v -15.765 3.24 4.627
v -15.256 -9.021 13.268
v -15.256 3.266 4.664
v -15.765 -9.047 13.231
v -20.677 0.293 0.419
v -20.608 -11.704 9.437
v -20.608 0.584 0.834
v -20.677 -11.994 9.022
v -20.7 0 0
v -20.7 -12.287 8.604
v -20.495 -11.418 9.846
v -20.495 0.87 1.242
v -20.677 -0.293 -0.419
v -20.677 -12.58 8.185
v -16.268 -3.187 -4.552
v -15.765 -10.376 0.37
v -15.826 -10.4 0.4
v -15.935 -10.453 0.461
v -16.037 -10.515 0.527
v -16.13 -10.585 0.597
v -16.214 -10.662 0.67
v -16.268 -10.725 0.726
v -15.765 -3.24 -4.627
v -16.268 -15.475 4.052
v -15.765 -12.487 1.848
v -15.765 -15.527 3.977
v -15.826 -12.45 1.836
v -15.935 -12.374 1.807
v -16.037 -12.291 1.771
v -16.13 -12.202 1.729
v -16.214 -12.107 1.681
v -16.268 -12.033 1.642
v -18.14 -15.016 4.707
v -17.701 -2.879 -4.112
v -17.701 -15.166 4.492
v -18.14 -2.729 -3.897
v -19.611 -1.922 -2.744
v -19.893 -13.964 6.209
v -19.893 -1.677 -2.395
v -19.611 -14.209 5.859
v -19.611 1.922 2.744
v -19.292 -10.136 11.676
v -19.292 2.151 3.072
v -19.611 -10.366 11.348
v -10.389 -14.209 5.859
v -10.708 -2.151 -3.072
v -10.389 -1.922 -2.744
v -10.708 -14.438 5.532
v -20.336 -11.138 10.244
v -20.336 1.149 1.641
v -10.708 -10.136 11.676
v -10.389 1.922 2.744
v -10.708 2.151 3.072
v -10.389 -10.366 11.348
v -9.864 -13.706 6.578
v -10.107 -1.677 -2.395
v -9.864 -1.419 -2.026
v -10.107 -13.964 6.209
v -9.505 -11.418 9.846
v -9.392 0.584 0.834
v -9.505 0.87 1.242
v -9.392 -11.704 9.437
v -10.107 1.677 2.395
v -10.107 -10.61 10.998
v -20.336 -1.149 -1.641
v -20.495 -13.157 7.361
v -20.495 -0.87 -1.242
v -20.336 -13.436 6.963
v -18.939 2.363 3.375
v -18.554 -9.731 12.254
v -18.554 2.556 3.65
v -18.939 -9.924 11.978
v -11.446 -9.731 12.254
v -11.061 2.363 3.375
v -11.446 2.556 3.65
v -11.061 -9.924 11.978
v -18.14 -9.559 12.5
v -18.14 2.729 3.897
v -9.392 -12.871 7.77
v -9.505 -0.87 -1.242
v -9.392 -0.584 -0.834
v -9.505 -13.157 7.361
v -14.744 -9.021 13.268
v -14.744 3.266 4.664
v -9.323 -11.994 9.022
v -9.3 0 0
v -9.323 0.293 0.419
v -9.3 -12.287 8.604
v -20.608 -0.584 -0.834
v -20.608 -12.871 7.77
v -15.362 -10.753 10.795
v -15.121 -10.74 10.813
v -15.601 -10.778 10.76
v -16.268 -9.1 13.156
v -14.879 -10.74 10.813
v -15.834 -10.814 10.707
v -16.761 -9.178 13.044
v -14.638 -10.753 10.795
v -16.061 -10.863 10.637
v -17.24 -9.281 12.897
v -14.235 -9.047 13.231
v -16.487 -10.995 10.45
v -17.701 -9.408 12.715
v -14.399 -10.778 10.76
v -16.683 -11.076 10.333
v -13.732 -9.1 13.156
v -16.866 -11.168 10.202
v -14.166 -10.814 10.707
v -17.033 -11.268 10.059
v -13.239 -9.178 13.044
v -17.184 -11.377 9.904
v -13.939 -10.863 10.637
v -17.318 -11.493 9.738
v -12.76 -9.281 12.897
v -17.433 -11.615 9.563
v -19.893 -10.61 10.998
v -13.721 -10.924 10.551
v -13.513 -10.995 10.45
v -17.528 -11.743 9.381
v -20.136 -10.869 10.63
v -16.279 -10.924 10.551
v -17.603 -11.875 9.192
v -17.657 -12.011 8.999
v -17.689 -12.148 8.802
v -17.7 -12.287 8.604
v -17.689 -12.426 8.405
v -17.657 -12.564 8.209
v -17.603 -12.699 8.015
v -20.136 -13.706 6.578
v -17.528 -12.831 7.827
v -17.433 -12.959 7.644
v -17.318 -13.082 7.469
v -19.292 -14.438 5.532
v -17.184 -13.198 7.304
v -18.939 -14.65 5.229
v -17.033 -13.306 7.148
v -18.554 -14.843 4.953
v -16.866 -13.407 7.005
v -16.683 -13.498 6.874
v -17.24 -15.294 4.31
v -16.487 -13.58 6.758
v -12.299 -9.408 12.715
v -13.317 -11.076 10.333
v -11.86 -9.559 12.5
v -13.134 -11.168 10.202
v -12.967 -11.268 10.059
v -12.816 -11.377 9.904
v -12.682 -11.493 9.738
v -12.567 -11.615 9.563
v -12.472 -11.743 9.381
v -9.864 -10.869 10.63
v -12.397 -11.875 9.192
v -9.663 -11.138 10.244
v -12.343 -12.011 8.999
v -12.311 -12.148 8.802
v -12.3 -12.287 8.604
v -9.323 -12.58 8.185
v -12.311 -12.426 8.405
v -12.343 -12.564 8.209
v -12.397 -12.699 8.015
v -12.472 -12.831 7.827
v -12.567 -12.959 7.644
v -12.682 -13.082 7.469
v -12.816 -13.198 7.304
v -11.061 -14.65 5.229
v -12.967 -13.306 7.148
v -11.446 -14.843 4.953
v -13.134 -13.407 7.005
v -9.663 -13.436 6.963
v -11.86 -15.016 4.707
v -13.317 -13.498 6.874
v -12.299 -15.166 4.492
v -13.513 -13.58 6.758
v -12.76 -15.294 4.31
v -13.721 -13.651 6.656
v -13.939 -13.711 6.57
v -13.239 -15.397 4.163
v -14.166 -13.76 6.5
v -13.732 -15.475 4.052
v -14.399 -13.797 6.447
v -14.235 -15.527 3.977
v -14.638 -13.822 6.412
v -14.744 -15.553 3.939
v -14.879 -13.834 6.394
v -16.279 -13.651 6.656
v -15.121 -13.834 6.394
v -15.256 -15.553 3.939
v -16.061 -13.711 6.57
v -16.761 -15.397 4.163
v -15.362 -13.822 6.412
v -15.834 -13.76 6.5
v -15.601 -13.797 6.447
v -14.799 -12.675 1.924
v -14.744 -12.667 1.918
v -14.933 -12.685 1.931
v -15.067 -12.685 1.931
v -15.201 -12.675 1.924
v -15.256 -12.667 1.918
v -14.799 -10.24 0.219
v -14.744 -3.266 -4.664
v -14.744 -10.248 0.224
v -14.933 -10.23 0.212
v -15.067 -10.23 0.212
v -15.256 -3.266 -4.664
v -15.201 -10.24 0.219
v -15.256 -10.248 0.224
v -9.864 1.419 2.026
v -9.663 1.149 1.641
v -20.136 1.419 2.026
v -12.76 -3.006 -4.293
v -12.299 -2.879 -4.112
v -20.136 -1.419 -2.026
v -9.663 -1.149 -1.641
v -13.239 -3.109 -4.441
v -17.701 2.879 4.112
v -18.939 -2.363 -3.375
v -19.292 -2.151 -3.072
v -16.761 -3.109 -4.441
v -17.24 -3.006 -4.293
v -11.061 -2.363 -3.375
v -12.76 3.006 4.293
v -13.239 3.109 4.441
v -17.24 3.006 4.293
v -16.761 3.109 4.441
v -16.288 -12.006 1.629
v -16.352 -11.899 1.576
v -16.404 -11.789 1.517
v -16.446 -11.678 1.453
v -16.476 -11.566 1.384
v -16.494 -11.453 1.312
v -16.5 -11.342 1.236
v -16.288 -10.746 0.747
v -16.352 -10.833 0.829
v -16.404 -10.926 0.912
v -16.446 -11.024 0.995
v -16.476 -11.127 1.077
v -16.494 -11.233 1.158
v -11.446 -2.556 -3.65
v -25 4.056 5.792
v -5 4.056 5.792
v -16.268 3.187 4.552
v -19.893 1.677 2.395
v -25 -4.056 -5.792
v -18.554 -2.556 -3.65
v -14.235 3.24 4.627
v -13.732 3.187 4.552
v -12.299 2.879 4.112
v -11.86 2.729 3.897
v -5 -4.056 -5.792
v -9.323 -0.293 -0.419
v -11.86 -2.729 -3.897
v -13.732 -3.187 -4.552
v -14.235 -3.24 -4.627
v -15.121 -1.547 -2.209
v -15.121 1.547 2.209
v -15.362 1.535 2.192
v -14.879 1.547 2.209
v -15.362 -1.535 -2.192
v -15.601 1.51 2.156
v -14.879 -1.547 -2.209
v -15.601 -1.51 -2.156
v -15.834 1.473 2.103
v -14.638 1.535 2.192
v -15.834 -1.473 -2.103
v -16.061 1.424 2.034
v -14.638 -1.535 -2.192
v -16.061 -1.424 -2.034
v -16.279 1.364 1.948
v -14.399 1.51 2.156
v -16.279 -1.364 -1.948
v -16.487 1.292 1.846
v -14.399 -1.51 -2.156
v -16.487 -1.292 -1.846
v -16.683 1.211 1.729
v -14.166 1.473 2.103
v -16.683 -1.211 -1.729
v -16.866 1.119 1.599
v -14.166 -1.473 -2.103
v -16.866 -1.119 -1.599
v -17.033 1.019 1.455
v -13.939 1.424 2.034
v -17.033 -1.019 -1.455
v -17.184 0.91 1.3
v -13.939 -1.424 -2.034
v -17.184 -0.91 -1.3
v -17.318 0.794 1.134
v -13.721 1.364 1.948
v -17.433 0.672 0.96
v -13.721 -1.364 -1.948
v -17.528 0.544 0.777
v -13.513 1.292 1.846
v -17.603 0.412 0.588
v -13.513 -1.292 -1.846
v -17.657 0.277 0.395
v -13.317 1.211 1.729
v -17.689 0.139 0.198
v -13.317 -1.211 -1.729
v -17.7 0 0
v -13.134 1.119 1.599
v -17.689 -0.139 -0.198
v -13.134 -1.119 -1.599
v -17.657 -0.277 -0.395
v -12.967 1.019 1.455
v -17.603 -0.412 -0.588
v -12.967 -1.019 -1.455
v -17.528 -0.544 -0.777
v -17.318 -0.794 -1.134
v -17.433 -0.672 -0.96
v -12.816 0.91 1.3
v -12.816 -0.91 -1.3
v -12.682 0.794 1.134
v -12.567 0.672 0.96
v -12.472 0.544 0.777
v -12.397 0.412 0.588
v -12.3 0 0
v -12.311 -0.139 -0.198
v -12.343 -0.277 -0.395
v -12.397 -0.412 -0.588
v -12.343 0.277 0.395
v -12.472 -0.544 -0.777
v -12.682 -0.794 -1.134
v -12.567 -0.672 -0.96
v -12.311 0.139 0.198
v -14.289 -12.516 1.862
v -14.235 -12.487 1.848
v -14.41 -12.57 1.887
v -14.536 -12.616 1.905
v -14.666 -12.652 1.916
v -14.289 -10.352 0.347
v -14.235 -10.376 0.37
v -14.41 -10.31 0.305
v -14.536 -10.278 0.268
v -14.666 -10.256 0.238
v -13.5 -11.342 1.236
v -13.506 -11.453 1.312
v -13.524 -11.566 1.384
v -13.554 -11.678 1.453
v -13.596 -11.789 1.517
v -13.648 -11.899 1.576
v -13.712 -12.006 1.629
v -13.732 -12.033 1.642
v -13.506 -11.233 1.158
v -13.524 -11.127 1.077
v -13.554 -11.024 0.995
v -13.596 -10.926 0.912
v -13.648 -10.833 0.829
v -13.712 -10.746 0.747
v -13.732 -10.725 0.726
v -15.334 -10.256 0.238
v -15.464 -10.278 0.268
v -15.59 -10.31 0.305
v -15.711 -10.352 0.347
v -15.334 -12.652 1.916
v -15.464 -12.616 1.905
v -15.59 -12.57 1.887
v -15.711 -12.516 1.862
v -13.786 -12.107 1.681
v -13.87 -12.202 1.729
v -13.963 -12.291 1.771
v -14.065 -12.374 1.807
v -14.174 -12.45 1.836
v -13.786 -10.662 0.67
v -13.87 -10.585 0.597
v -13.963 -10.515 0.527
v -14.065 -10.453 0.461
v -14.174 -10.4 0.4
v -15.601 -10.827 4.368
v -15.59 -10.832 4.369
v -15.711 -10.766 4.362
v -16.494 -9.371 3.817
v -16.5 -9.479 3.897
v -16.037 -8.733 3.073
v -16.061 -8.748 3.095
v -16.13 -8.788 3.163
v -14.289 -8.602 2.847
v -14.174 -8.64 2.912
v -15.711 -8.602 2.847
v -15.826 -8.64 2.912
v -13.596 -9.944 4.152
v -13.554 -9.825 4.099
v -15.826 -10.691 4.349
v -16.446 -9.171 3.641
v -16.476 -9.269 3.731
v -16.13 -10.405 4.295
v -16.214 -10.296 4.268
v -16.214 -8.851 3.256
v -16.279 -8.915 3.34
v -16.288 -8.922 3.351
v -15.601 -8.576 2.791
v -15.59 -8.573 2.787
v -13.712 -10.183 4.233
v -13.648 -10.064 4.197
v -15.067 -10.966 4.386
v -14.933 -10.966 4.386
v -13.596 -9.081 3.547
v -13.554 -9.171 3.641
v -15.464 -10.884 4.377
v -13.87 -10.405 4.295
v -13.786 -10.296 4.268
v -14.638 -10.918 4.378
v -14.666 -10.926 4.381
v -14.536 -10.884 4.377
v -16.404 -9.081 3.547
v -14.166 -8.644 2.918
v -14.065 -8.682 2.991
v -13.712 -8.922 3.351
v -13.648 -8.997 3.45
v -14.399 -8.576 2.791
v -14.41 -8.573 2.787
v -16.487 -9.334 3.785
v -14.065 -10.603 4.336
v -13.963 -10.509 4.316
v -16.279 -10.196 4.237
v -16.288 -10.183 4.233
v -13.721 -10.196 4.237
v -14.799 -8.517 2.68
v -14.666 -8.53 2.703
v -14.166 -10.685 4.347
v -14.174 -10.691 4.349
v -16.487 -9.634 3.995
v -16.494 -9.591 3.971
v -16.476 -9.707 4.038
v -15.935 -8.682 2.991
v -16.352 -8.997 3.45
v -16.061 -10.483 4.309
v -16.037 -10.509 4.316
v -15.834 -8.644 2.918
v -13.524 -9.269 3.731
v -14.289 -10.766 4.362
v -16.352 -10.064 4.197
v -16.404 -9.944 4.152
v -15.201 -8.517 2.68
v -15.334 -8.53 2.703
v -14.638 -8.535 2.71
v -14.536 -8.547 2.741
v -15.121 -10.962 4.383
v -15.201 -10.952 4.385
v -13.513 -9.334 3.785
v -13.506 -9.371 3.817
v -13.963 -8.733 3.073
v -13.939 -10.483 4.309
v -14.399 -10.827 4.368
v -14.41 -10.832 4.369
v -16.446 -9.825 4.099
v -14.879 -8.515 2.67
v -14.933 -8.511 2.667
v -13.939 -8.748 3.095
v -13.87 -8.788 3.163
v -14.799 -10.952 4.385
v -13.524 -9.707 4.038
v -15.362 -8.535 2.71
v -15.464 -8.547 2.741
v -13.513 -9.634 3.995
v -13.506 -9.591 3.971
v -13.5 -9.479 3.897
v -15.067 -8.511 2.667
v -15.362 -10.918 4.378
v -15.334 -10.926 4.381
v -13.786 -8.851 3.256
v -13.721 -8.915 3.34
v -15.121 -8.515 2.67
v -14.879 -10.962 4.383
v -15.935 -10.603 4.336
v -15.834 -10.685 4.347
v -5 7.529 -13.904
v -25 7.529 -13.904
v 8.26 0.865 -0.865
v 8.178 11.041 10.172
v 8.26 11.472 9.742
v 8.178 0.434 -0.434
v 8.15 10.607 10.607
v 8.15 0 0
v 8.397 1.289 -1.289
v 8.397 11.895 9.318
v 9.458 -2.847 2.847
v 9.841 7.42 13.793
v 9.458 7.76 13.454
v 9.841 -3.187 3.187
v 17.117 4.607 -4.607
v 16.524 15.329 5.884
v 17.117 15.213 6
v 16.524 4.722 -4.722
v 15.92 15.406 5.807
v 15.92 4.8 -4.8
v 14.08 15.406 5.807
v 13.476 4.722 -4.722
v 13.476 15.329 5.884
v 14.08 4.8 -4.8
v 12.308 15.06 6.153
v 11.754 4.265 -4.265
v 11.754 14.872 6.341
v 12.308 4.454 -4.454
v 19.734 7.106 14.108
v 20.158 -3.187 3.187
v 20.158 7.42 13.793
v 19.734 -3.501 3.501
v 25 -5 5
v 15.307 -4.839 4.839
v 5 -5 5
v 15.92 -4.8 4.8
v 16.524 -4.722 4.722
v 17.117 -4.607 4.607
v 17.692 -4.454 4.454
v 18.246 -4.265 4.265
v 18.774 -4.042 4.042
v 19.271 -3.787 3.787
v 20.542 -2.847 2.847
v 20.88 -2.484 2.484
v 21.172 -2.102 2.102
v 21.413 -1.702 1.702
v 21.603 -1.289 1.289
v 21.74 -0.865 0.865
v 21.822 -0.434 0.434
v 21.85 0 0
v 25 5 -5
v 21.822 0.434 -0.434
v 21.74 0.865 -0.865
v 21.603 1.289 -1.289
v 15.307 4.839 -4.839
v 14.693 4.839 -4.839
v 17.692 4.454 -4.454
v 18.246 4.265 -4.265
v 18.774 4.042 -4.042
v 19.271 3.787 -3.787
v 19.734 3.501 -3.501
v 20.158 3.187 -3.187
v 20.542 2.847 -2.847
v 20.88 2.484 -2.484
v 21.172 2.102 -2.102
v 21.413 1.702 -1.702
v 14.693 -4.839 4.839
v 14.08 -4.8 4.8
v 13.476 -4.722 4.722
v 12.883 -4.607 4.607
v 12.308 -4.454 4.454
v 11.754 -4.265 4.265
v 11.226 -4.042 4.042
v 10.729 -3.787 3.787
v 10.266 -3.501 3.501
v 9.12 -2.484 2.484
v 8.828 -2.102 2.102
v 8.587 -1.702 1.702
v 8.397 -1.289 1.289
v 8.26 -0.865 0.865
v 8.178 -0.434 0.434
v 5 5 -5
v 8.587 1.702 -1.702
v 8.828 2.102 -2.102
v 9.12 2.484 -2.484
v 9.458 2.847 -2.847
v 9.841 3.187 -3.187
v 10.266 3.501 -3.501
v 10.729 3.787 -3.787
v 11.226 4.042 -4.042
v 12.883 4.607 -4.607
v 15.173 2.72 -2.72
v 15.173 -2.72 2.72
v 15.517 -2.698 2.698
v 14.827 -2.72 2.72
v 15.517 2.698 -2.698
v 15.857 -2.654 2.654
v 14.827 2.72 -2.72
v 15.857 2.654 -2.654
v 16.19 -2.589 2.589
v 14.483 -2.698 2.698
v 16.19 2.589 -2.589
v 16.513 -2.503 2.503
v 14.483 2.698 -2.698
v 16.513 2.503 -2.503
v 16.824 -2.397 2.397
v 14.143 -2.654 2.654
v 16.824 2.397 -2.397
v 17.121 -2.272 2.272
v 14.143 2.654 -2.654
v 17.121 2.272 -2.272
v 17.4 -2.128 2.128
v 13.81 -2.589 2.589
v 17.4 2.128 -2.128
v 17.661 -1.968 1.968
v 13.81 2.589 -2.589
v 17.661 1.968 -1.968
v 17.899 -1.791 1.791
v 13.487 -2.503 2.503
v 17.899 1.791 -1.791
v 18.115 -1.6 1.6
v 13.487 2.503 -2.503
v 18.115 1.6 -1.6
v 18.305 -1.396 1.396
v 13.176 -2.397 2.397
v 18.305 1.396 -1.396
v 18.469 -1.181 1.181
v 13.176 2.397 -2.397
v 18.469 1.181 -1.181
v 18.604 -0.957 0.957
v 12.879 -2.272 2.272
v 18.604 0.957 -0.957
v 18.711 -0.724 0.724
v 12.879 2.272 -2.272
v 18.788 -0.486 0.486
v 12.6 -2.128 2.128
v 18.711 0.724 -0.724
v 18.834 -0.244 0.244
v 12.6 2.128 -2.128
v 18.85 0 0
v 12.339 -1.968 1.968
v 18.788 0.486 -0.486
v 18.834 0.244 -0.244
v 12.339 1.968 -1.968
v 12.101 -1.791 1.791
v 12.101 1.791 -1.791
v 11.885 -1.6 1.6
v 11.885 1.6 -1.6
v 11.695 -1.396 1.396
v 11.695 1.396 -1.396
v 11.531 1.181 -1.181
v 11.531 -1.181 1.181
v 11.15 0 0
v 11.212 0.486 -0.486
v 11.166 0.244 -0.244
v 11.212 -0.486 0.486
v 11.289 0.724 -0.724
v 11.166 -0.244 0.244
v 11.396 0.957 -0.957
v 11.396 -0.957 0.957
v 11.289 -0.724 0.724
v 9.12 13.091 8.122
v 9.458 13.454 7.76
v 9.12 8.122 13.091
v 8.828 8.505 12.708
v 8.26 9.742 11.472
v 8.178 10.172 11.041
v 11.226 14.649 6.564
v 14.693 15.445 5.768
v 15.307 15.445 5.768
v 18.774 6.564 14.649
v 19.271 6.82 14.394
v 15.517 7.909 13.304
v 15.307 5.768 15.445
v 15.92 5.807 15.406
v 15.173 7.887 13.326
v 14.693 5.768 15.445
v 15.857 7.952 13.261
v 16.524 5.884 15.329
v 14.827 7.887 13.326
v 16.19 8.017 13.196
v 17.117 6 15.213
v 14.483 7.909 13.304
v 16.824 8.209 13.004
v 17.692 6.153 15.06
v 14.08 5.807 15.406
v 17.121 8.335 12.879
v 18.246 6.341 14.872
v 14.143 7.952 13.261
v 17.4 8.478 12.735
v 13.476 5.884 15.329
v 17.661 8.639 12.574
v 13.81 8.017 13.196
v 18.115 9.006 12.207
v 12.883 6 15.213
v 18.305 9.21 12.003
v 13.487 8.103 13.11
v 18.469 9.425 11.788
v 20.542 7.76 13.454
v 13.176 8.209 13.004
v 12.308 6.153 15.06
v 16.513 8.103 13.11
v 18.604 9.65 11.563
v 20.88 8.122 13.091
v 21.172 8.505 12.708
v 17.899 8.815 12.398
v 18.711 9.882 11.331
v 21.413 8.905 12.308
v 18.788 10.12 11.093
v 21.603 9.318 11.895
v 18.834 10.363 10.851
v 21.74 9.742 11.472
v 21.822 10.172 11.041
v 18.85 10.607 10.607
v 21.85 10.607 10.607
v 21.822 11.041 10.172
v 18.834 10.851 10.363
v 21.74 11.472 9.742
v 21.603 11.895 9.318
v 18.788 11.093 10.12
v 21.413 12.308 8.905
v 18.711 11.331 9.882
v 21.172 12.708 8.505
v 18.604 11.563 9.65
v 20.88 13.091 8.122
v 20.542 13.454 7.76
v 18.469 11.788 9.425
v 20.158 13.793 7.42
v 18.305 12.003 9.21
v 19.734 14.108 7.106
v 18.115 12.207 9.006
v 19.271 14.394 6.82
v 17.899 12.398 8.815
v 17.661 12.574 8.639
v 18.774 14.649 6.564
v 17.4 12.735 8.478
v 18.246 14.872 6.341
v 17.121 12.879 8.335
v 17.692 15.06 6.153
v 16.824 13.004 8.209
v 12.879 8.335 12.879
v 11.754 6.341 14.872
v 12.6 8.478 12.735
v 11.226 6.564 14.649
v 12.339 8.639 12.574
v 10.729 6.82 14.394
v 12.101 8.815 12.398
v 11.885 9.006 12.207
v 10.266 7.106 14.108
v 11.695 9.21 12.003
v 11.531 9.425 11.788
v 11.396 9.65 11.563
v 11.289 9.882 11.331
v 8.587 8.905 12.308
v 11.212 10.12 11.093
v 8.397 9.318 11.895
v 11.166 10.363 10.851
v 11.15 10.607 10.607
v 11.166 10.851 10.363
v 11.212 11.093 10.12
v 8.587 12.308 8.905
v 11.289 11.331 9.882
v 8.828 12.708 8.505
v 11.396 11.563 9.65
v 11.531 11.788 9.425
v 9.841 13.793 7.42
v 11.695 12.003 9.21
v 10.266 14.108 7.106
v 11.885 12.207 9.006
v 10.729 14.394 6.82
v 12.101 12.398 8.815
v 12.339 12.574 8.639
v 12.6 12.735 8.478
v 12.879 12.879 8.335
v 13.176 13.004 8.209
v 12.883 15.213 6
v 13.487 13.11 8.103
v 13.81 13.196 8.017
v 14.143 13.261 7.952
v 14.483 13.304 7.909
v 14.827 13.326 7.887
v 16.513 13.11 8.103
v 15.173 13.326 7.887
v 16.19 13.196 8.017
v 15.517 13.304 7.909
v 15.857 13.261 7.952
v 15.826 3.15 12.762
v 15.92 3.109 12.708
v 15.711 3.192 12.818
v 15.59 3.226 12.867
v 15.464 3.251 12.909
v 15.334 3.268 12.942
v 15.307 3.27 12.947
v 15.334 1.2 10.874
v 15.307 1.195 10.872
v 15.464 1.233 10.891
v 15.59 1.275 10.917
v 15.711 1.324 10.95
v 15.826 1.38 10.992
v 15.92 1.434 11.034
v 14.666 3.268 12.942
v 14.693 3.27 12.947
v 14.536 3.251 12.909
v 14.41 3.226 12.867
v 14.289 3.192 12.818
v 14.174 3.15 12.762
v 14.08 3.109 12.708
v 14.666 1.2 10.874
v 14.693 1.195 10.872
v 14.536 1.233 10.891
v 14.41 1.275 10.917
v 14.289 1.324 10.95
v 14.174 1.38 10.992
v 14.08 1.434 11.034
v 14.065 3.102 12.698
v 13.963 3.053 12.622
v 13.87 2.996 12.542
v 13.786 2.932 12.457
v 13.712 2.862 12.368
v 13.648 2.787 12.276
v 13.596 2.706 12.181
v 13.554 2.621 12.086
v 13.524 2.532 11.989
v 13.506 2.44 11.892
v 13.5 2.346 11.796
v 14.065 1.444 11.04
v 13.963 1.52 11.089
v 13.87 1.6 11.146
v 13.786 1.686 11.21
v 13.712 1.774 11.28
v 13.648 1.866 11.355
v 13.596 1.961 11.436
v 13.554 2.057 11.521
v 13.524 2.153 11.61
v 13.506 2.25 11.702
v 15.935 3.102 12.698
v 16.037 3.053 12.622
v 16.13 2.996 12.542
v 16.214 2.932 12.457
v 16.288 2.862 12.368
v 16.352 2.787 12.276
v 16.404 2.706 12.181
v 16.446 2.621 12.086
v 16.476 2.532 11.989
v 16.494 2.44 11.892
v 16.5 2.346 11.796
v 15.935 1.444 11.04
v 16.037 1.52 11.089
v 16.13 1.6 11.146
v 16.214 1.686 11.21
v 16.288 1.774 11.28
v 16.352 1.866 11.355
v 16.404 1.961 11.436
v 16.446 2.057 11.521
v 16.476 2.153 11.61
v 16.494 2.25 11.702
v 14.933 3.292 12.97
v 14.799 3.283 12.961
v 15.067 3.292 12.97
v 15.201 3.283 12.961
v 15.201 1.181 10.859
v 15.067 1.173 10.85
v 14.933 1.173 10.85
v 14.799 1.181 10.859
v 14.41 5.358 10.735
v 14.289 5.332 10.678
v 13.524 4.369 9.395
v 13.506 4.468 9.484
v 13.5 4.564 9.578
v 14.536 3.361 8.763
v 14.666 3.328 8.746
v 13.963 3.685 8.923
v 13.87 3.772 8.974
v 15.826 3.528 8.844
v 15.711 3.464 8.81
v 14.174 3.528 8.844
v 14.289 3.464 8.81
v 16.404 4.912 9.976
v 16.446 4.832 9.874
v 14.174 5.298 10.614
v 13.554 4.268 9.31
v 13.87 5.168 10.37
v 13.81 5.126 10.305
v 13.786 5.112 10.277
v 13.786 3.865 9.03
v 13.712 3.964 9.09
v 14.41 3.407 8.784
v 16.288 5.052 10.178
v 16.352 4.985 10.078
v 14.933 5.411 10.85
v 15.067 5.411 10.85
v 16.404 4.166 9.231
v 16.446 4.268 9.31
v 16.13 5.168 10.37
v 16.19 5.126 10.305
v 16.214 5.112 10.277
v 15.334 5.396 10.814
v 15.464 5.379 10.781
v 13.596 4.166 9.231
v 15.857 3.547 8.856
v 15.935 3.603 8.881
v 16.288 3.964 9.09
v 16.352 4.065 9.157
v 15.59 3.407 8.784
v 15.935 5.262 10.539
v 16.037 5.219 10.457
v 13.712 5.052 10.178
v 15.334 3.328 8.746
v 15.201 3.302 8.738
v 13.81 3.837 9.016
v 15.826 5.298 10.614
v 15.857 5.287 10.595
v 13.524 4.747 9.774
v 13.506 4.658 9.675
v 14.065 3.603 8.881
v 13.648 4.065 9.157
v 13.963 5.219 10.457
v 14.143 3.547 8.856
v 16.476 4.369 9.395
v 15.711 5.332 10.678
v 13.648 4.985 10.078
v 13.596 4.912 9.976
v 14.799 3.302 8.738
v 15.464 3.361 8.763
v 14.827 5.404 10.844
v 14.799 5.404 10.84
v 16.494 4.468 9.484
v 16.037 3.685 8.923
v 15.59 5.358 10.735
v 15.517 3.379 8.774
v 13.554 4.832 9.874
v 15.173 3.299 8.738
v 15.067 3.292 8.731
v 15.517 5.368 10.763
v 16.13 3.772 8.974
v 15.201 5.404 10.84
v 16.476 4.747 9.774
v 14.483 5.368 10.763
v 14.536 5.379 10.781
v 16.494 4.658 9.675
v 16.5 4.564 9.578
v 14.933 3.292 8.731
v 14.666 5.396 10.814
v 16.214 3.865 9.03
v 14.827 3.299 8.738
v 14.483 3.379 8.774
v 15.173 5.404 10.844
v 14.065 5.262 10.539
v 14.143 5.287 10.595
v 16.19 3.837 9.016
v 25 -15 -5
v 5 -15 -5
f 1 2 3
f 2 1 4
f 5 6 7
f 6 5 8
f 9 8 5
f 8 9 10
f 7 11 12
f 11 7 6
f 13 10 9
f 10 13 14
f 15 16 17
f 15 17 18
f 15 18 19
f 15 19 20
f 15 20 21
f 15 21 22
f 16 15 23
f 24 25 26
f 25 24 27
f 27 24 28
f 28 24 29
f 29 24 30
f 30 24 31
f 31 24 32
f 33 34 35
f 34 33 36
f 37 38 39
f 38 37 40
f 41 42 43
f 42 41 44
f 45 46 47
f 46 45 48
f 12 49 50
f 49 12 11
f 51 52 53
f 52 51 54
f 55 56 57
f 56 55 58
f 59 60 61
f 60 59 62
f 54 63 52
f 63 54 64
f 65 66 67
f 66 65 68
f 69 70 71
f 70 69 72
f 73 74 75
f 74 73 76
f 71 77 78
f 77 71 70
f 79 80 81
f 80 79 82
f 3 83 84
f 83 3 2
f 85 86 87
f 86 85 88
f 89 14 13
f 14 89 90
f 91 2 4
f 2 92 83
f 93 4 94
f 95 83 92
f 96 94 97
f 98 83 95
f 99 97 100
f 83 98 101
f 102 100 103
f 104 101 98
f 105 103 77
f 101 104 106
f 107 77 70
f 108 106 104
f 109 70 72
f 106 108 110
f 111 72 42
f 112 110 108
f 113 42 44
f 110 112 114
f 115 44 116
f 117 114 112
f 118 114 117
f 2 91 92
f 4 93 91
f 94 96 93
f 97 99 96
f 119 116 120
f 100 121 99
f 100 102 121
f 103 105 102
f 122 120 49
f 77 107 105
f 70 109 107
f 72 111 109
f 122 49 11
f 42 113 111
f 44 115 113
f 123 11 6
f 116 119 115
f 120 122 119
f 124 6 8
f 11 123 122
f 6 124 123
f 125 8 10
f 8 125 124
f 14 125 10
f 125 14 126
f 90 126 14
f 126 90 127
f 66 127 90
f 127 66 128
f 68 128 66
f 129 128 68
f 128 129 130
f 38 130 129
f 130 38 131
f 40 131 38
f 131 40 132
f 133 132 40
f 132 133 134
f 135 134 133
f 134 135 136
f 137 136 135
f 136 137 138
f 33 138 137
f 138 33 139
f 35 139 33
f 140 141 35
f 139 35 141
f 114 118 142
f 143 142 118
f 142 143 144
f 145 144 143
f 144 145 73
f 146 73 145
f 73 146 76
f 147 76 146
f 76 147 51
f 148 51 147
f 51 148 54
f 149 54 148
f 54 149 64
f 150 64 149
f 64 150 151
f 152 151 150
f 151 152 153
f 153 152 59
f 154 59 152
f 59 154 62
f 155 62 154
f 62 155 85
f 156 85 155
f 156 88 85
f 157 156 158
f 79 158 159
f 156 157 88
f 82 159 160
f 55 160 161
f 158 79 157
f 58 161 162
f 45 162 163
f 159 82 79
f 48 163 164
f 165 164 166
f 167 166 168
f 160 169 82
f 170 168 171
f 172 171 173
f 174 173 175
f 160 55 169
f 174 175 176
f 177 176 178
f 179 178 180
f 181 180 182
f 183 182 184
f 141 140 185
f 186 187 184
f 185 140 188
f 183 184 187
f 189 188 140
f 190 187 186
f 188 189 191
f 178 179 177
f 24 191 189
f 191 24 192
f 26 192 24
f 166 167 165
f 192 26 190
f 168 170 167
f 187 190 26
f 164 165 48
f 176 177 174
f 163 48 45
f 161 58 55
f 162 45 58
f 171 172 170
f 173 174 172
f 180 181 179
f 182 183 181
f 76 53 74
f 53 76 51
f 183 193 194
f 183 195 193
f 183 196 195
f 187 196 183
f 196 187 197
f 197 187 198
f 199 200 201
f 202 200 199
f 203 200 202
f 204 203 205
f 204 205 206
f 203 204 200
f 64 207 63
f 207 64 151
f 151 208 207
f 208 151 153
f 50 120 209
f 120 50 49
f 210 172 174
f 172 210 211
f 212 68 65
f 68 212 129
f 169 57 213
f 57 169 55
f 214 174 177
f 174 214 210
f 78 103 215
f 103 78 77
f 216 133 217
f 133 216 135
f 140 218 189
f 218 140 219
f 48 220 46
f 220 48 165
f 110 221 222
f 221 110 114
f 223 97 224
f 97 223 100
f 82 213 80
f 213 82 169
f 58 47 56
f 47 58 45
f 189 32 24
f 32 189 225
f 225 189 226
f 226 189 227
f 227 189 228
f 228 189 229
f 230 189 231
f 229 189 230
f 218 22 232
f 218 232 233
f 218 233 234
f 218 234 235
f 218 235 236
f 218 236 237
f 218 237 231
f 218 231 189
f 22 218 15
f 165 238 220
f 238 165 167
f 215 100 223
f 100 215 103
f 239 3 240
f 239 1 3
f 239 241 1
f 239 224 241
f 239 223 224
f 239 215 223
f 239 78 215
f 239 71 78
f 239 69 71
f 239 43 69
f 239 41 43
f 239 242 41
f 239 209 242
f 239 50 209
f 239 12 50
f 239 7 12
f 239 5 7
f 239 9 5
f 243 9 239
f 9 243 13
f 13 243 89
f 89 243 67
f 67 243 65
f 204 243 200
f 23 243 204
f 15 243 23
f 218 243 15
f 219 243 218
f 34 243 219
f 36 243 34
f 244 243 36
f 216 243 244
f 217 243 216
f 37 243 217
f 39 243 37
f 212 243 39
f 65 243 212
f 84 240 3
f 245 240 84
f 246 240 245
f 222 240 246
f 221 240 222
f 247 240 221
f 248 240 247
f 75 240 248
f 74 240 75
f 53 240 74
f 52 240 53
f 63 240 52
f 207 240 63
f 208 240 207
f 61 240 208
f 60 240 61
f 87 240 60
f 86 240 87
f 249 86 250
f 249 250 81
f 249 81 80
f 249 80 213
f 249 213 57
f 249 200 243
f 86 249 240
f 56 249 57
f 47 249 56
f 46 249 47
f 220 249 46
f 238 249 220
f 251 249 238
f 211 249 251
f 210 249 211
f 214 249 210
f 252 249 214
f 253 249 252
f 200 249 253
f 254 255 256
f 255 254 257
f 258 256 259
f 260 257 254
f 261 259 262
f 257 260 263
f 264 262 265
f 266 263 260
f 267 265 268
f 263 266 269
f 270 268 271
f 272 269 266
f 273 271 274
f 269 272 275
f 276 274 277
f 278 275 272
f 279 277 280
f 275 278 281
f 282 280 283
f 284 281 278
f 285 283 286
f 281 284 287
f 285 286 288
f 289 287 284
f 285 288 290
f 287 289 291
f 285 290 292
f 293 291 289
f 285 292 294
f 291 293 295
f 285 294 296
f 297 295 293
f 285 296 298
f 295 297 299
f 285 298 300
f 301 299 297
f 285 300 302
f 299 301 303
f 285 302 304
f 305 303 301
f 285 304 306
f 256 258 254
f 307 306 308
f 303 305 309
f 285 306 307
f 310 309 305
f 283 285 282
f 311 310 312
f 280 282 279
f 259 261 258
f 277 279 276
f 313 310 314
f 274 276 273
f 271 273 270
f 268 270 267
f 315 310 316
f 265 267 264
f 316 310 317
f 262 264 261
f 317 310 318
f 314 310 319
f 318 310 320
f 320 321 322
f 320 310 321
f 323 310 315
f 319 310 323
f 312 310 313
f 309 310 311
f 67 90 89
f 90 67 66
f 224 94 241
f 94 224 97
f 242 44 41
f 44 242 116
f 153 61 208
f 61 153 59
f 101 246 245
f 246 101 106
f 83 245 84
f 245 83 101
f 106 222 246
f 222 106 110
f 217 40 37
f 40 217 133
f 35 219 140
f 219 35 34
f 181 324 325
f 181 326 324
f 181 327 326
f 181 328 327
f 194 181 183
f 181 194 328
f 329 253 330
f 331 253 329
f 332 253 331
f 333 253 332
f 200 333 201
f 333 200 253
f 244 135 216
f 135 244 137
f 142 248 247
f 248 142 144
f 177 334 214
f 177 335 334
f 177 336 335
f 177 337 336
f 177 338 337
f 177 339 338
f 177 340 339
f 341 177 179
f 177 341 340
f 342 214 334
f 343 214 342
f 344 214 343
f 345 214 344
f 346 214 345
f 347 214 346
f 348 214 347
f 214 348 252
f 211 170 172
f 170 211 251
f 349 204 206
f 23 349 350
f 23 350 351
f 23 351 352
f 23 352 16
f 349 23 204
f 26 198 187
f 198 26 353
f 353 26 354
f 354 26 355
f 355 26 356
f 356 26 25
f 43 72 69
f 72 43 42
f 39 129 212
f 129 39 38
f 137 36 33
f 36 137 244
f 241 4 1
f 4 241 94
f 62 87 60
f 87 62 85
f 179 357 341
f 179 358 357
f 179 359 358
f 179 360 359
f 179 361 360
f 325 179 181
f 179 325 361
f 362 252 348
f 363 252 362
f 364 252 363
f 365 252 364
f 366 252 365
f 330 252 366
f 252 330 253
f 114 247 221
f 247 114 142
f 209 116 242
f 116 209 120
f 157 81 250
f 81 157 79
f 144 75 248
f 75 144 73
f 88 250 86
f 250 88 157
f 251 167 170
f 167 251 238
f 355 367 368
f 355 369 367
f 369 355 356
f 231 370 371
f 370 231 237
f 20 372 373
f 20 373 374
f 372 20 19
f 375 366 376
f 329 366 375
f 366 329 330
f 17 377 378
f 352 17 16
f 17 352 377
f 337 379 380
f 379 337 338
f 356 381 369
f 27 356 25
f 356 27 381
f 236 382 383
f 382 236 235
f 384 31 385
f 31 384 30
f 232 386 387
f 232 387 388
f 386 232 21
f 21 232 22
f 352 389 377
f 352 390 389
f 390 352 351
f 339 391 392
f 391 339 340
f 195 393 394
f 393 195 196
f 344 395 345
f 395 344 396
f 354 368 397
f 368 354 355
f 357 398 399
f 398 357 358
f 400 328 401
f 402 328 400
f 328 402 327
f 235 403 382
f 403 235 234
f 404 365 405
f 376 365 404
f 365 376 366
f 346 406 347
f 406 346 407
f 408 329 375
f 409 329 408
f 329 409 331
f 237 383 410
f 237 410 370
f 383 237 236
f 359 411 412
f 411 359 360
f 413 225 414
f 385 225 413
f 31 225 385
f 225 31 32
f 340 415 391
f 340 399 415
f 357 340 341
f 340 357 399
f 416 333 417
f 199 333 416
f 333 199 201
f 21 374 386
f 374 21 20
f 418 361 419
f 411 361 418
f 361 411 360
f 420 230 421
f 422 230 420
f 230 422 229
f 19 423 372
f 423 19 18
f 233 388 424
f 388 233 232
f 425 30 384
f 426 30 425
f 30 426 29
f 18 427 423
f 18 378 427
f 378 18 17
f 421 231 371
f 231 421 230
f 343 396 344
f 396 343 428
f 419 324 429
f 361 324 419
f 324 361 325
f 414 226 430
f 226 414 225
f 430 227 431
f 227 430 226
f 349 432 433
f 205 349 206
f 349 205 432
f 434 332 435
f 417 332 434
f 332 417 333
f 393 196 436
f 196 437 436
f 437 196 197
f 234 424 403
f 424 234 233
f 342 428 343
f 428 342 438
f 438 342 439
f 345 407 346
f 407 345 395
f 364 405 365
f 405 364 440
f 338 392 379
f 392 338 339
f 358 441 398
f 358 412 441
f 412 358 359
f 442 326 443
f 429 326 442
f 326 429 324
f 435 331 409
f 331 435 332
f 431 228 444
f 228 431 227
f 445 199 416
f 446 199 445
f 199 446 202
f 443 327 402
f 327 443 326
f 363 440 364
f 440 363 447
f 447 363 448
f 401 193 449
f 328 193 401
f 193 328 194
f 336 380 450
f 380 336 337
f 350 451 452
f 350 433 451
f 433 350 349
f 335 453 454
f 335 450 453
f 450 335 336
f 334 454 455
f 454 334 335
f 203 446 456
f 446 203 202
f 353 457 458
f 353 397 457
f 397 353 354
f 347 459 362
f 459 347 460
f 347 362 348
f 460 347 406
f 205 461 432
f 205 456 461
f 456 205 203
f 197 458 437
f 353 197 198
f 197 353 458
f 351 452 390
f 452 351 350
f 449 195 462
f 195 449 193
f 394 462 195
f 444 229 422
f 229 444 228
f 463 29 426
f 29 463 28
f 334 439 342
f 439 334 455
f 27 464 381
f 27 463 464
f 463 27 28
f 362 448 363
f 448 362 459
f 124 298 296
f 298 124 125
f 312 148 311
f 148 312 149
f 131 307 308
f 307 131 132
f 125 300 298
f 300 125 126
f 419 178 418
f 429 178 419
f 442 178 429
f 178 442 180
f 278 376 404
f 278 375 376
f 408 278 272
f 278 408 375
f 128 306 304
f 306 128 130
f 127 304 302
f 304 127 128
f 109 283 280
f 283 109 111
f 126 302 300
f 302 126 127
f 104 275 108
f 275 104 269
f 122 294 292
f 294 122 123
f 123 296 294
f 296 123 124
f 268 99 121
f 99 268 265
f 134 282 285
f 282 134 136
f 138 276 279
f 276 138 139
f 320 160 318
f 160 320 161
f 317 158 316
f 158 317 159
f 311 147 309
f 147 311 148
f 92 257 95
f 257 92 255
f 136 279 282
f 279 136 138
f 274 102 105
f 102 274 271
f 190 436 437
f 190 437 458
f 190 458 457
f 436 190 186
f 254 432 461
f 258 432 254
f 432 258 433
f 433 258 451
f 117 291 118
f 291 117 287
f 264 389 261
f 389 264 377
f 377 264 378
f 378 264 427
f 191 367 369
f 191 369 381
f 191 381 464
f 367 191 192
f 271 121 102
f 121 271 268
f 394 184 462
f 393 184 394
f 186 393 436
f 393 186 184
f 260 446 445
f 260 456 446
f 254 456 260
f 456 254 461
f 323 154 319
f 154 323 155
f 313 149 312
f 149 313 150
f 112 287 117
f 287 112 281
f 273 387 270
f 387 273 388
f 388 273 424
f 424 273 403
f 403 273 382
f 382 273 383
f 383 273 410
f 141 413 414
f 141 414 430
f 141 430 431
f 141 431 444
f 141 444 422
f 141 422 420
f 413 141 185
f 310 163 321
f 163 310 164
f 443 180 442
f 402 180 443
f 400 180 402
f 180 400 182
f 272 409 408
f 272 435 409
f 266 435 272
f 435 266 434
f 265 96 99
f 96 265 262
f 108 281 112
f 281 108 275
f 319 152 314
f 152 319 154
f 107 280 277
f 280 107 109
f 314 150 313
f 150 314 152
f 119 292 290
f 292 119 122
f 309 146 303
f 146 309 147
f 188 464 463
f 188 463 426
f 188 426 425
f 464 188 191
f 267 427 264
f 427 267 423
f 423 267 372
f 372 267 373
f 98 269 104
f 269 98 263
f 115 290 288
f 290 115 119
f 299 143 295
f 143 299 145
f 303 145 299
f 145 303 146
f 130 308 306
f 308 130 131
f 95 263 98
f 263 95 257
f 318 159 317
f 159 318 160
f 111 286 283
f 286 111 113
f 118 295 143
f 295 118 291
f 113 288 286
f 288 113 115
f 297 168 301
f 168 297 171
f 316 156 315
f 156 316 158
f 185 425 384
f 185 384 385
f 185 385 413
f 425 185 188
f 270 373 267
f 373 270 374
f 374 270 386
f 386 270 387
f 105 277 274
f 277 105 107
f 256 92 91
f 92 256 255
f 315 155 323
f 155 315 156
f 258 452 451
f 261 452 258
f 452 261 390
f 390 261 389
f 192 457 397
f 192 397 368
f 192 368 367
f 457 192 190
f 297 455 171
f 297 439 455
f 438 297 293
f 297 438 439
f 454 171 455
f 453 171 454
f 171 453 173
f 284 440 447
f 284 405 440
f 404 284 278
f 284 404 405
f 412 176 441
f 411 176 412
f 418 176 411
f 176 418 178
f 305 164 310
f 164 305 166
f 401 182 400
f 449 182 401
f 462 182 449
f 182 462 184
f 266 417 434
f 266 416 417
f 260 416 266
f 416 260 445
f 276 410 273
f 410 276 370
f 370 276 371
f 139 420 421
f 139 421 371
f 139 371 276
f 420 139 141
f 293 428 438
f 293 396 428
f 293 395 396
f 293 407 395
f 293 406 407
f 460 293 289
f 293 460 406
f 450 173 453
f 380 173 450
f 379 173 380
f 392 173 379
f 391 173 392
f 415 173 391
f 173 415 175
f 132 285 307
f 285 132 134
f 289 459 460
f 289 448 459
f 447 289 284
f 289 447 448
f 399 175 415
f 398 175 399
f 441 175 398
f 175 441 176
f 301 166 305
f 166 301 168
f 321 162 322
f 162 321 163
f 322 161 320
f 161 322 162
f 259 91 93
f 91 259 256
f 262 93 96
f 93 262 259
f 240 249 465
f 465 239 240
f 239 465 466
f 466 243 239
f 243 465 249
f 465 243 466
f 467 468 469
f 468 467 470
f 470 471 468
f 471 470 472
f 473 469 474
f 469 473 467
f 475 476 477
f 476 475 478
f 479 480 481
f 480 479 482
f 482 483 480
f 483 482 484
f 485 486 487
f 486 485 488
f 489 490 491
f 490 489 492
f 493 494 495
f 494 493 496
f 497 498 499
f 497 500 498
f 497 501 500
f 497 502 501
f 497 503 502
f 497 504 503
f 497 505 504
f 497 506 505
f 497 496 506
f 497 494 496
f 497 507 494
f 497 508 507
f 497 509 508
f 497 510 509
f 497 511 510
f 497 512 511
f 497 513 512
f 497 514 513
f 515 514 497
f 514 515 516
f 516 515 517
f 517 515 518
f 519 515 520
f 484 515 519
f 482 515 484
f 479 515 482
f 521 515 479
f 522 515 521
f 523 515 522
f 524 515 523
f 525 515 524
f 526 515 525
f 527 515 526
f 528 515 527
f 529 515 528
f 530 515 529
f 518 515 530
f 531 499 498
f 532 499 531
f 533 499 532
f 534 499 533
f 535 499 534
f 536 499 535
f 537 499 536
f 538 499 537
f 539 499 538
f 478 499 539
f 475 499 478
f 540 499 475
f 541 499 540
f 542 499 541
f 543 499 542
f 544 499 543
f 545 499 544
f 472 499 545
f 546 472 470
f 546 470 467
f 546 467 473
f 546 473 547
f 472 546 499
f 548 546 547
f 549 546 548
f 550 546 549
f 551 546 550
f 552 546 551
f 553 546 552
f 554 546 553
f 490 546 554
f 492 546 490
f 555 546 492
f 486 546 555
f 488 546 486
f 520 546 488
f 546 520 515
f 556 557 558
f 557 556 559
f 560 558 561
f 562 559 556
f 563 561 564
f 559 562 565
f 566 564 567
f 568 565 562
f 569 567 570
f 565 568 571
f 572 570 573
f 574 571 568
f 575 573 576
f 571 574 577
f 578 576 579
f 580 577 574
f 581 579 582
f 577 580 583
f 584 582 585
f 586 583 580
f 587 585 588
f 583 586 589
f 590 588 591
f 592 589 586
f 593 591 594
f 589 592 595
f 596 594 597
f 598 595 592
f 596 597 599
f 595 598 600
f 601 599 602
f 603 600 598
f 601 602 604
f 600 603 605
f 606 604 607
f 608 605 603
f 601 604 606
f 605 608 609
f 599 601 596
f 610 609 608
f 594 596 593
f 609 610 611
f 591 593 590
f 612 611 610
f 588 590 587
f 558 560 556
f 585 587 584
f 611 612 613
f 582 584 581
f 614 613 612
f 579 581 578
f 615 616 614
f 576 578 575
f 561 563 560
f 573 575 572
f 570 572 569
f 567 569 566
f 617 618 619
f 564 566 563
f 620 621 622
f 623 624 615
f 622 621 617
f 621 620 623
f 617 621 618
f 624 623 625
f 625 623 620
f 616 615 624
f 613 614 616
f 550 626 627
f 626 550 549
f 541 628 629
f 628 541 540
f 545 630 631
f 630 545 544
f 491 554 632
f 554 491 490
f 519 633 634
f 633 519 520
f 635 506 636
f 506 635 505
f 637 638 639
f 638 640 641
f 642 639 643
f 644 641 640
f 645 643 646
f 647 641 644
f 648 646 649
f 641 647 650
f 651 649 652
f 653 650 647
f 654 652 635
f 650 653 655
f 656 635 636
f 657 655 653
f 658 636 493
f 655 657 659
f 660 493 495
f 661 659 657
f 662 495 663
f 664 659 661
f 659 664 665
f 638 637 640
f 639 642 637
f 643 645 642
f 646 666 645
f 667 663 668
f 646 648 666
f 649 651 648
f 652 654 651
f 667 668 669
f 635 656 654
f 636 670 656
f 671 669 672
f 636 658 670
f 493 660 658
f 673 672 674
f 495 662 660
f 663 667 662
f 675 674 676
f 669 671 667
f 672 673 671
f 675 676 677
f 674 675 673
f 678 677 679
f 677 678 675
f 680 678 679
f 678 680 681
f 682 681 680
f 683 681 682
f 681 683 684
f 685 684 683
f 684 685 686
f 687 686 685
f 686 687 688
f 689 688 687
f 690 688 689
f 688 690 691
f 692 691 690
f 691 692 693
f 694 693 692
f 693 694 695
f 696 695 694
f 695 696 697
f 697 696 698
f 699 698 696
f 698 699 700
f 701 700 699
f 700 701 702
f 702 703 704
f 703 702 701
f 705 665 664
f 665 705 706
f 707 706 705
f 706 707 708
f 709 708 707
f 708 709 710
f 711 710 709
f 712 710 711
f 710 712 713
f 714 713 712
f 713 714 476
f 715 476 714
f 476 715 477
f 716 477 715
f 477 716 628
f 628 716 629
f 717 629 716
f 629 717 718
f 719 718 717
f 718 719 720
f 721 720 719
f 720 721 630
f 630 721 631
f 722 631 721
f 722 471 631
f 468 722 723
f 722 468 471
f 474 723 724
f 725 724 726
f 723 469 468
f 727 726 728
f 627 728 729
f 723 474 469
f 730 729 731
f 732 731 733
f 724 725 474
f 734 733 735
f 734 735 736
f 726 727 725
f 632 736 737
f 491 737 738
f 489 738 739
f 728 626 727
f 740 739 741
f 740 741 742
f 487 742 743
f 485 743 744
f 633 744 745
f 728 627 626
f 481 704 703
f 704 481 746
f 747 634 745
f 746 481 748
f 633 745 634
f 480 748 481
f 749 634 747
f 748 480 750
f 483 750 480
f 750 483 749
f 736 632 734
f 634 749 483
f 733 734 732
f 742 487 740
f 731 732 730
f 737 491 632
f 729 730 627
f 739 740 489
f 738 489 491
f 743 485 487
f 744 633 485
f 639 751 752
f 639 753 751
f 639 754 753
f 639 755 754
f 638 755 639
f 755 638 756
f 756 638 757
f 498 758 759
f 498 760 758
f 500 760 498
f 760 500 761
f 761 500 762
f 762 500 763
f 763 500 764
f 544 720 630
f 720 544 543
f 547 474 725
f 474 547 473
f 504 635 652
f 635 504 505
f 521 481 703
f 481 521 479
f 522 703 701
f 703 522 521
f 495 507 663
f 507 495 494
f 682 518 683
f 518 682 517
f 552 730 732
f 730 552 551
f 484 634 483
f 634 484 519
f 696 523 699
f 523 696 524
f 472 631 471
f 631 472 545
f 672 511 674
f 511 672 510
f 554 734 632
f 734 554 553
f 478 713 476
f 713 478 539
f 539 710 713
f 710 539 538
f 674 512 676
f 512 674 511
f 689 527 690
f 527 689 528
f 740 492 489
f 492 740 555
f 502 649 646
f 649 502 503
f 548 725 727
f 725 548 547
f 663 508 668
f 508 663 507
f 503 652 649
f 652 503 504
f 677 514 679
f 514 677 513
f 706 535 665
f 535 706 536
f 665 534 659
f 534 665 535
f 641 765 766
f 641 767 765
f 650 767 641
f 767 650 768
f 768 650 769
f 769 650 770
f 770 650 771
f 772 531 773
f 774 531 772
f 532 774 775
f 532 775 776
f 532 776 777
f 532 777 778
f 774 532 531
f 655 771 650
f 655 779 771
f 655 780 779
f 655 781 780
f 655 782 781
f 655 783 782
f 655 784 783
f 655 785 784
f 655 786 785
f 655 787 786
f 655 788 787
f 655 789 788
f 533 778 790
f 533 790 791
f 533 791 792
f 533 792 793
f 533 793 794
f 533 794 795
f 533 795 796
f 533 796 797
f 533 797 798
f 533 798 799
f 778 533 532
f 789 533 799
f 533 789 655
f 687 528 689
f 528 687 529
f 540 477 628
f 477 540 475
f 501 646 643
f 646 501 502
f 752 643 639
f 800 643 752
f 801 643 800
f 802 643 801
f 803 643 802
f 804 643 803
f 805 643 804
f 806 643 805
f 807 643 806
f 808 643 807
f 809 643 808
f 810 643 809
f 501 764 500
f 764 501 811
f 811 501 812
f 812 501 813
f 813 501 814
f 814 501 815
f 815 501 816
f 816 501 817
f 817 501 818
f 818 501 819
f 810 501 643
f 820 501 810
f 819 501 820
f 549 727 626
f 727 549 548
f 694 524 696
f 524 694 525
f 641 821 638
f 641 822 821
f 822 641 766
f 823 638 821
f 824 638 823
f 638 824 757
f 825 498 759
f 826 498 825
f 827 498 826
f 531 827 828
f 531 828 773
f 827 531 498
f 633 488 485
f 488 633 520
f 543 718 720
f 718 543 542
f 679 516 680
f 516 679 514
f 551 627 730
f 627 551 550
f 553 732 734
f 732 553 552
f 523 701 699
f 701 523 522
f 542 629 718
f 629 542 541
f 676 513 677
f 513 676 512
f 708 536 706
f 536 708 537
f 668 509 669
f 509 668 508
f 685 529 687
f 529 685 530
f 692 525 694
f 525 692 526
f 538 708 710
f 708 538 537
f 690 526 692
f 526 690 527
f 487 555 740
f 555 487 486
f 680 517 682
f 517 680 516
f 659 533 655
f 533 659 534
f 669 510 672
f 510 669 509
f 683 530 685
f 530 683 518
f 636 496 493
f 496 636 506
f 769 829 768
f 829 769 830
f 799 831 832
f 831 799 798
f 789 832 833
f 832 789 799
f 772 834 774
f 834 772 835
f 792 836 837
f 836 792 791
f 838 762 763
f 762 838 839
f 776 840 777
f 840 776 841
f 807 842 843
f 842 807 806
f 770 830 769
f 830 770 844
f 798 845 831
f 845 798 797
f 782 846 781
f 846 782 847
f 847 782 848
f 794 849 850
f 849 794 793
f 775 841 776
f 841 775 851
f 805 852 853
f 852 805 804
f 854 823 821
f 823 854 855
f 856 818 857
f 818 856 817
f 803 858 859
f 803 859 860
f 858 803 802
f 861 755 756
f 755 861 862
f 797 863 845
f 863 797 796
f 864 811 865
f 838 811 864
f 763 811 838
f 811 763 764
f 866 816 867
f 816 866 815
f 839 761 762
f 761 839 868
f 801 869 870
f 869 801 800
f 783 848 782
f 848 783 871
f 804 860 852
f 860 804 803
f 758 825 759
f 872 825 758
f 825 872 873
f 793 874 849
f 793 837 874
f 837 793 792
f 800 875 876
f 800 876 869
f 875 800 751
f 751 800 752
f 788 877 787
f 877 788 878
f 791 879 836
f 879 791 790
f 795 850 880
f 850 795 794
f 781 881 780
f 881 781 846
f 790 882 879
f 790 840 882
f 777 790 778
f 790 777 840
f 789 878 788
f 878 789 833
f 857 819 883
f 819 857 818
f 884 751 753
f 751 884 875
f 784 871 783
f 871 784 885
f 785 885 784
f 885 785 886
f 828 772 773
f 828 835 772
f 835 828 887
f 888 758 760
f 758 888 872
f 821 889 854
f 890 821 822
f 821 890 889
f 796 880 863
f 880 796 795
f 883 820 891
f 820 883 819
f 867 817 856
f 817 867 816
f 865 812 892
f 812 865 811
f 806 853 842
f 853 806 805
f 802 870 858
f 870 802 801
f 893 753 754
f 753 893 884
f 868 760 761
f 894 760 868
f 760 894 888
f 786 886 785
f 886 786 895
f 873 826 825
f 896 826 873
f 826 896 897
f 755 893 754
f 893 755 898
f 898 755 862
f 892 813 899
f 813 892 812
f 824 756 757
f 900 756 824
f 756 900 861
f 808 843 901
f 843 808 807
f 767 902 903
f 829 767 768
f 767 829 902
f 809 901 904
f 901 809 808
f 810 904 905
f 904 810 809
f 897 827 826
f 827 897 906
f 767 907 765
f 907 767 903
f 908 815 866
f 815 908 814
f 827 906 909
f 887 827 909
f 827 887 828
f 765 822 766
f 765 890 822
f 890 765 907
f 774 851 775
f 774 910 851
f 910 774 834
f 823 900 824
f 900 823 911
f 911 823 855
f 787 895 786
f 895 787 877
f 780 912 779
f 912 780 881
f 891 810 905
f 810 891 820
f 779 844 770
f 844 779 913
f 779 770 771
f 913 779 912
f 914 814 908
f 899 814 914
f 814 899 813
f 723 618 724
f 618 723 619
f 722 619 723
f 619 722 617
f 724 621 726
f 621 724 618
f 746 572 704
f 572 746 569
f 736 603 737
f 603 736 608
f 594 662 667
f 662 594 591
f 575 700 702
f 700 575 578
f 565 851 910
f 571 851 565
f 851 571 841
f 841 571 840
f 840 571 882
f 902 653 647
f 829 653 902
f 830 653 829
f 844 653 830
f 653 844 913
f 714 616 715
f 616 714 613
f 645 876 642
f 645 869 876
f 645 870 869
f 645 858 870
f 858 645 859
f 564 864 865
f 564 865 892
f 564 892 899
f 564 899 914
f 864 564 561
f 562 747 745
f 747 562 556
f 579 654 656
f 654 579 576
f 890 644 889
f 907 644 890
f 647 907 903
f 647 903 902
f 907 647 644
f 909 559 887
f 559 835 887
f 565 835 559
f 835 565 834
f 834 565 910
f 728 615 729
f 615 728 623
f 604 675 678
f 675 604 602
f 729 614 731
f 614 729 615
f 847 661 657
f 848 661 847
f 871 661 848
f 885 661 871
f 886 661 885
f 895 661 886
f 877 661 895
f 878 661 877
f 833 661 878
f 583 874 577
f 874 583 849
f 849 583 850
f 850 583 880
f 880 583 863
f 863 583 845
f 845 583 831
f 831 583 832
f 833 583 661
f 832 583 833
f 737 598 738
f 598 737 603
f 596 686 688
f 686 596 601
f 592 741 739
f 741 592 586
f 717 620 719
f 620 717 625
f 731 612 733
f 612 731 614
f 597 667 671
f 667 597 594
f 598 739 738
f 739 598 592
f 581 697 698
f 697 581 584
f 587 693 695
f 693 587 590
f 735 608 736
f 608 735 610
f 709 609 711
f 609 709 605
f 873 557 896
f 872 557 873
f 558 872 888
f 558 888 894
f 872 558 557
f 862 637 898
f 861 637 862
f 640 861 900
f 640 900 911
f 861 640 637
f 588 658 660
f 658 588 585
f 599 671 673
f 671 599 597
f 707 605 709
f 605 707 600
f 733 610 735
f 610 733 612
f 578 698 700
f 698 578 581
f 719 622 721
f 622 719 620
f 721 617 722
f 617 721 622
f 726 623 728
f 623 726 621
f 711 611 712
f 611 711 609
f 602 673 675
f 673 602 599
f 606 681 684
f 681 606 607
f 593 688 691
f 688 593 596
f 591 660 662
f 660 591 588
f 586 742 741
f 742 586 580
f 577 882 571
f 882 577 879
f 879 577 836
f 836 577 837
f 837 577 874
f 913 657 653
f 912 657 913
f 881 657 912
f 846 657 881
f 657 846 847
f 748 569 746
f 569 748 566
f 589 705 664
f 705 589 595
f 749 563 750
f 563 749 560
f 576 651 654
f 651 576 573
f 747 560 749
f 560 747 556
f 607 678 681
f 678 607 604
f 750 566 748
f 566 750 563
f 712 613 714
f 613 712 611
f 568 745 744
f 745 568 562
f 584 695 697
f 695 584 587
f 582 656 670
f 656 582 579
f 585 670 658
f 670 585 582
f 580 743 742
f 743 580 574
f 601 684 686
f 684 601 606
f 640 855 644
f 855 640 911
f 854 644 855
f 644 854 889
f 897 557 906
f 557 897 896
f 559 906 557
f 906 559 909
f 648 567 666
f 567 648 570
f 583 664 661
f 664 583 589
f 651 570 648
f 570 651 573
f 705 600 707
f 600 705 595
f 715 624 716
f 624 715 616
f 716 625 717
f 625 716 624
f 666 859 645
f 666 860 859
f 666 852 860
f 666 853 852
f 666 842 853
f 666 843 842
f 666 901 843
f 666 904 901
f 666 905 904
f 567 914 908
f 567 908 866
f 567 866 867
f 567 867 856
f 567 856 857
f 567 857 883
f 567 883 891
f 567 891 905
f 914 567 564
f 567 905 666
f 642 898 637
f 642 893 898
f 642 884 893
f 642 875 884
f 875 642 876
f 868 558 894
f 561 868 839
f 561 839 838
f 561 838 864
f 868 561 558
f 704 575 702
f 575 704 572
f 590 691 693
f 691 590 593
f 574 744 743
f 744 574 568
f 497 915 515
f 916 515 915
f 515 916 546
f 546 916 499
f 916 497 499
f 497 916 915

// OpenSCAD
$fn=70;
module mirror_support_for_stepper_motor
(   plane_side_length = 20,
    shaft_diameter = 5, 
    shaft_height = 15,
    shaft_support_wall_size = 6,
    tolerance = 0.4
)
 {  
    
    module shaft()
    {        
        translate([0,0,-shaft_height/2])
        cylinder(h=shaft_height,d=shaft_diameter+tolerance,center=true);
    }

    module shaftSupport()
    {
        translate([0,0,-shaft_height/2])
        cylinder(h=shaft_height,d=shaft_diameter+shaft_support_wall_size+tolerance,center=true);
    }

    module mirrorSupport(l=plane_side_length)
    {
    points = [
        [0, 0, 0], // Point 1
        [0, l, 0], // Point 2
        [l, l, 0], // Point 3
        [l, 0, 0], // Point 4
        [0, l/2, sqrt(l*l/2)/sqrt(2) ], // Point 5
        [l, l/2, sqrt(l*l/2)/sqrt(2) ]  // Point 6
    ];
    faces = [
        [3, 2, 1, 0],  // Base, normal upwards
        [0, 1, 4],     // Side triangle, normal outward
        [1, 2, 5, 4],  //  Side face, normal outward
        [2, 3, 5],     // Side triangle, normal outward
        [4, 5, 3, 0],  //  Side face, normal outward
    ];


    translate([0,0,l/2/sqrt(2)])
    rotate([135,0,0])
    translate([-l/2,-l/2,0])
    polyhedron(points, faces);
    }

    color("gray")
    union()
    {
        difference()
        {
            diameter_screw = 3;
            distance_to_border = 3.5;
            shaftSupport();
            translate([0,-5,distance_to_border-shaft_height+diameter_screw/2])
            rotate([90,0,0])
            color("green")
            cylinder(h=7,d=diameter_screw,center=true);
            shaft();
        }  
        mirrorSupport(plane_side_length);
    }
}

translate([-15,0,0])
rotate([125,0,180])
mirror_support_for_stepper_motor(shaft_diameter=5);

translate([15,0,0])
rotate([45,180,0])
mirror_support_for_stepper_motor(shaft_diameter=7.3);
